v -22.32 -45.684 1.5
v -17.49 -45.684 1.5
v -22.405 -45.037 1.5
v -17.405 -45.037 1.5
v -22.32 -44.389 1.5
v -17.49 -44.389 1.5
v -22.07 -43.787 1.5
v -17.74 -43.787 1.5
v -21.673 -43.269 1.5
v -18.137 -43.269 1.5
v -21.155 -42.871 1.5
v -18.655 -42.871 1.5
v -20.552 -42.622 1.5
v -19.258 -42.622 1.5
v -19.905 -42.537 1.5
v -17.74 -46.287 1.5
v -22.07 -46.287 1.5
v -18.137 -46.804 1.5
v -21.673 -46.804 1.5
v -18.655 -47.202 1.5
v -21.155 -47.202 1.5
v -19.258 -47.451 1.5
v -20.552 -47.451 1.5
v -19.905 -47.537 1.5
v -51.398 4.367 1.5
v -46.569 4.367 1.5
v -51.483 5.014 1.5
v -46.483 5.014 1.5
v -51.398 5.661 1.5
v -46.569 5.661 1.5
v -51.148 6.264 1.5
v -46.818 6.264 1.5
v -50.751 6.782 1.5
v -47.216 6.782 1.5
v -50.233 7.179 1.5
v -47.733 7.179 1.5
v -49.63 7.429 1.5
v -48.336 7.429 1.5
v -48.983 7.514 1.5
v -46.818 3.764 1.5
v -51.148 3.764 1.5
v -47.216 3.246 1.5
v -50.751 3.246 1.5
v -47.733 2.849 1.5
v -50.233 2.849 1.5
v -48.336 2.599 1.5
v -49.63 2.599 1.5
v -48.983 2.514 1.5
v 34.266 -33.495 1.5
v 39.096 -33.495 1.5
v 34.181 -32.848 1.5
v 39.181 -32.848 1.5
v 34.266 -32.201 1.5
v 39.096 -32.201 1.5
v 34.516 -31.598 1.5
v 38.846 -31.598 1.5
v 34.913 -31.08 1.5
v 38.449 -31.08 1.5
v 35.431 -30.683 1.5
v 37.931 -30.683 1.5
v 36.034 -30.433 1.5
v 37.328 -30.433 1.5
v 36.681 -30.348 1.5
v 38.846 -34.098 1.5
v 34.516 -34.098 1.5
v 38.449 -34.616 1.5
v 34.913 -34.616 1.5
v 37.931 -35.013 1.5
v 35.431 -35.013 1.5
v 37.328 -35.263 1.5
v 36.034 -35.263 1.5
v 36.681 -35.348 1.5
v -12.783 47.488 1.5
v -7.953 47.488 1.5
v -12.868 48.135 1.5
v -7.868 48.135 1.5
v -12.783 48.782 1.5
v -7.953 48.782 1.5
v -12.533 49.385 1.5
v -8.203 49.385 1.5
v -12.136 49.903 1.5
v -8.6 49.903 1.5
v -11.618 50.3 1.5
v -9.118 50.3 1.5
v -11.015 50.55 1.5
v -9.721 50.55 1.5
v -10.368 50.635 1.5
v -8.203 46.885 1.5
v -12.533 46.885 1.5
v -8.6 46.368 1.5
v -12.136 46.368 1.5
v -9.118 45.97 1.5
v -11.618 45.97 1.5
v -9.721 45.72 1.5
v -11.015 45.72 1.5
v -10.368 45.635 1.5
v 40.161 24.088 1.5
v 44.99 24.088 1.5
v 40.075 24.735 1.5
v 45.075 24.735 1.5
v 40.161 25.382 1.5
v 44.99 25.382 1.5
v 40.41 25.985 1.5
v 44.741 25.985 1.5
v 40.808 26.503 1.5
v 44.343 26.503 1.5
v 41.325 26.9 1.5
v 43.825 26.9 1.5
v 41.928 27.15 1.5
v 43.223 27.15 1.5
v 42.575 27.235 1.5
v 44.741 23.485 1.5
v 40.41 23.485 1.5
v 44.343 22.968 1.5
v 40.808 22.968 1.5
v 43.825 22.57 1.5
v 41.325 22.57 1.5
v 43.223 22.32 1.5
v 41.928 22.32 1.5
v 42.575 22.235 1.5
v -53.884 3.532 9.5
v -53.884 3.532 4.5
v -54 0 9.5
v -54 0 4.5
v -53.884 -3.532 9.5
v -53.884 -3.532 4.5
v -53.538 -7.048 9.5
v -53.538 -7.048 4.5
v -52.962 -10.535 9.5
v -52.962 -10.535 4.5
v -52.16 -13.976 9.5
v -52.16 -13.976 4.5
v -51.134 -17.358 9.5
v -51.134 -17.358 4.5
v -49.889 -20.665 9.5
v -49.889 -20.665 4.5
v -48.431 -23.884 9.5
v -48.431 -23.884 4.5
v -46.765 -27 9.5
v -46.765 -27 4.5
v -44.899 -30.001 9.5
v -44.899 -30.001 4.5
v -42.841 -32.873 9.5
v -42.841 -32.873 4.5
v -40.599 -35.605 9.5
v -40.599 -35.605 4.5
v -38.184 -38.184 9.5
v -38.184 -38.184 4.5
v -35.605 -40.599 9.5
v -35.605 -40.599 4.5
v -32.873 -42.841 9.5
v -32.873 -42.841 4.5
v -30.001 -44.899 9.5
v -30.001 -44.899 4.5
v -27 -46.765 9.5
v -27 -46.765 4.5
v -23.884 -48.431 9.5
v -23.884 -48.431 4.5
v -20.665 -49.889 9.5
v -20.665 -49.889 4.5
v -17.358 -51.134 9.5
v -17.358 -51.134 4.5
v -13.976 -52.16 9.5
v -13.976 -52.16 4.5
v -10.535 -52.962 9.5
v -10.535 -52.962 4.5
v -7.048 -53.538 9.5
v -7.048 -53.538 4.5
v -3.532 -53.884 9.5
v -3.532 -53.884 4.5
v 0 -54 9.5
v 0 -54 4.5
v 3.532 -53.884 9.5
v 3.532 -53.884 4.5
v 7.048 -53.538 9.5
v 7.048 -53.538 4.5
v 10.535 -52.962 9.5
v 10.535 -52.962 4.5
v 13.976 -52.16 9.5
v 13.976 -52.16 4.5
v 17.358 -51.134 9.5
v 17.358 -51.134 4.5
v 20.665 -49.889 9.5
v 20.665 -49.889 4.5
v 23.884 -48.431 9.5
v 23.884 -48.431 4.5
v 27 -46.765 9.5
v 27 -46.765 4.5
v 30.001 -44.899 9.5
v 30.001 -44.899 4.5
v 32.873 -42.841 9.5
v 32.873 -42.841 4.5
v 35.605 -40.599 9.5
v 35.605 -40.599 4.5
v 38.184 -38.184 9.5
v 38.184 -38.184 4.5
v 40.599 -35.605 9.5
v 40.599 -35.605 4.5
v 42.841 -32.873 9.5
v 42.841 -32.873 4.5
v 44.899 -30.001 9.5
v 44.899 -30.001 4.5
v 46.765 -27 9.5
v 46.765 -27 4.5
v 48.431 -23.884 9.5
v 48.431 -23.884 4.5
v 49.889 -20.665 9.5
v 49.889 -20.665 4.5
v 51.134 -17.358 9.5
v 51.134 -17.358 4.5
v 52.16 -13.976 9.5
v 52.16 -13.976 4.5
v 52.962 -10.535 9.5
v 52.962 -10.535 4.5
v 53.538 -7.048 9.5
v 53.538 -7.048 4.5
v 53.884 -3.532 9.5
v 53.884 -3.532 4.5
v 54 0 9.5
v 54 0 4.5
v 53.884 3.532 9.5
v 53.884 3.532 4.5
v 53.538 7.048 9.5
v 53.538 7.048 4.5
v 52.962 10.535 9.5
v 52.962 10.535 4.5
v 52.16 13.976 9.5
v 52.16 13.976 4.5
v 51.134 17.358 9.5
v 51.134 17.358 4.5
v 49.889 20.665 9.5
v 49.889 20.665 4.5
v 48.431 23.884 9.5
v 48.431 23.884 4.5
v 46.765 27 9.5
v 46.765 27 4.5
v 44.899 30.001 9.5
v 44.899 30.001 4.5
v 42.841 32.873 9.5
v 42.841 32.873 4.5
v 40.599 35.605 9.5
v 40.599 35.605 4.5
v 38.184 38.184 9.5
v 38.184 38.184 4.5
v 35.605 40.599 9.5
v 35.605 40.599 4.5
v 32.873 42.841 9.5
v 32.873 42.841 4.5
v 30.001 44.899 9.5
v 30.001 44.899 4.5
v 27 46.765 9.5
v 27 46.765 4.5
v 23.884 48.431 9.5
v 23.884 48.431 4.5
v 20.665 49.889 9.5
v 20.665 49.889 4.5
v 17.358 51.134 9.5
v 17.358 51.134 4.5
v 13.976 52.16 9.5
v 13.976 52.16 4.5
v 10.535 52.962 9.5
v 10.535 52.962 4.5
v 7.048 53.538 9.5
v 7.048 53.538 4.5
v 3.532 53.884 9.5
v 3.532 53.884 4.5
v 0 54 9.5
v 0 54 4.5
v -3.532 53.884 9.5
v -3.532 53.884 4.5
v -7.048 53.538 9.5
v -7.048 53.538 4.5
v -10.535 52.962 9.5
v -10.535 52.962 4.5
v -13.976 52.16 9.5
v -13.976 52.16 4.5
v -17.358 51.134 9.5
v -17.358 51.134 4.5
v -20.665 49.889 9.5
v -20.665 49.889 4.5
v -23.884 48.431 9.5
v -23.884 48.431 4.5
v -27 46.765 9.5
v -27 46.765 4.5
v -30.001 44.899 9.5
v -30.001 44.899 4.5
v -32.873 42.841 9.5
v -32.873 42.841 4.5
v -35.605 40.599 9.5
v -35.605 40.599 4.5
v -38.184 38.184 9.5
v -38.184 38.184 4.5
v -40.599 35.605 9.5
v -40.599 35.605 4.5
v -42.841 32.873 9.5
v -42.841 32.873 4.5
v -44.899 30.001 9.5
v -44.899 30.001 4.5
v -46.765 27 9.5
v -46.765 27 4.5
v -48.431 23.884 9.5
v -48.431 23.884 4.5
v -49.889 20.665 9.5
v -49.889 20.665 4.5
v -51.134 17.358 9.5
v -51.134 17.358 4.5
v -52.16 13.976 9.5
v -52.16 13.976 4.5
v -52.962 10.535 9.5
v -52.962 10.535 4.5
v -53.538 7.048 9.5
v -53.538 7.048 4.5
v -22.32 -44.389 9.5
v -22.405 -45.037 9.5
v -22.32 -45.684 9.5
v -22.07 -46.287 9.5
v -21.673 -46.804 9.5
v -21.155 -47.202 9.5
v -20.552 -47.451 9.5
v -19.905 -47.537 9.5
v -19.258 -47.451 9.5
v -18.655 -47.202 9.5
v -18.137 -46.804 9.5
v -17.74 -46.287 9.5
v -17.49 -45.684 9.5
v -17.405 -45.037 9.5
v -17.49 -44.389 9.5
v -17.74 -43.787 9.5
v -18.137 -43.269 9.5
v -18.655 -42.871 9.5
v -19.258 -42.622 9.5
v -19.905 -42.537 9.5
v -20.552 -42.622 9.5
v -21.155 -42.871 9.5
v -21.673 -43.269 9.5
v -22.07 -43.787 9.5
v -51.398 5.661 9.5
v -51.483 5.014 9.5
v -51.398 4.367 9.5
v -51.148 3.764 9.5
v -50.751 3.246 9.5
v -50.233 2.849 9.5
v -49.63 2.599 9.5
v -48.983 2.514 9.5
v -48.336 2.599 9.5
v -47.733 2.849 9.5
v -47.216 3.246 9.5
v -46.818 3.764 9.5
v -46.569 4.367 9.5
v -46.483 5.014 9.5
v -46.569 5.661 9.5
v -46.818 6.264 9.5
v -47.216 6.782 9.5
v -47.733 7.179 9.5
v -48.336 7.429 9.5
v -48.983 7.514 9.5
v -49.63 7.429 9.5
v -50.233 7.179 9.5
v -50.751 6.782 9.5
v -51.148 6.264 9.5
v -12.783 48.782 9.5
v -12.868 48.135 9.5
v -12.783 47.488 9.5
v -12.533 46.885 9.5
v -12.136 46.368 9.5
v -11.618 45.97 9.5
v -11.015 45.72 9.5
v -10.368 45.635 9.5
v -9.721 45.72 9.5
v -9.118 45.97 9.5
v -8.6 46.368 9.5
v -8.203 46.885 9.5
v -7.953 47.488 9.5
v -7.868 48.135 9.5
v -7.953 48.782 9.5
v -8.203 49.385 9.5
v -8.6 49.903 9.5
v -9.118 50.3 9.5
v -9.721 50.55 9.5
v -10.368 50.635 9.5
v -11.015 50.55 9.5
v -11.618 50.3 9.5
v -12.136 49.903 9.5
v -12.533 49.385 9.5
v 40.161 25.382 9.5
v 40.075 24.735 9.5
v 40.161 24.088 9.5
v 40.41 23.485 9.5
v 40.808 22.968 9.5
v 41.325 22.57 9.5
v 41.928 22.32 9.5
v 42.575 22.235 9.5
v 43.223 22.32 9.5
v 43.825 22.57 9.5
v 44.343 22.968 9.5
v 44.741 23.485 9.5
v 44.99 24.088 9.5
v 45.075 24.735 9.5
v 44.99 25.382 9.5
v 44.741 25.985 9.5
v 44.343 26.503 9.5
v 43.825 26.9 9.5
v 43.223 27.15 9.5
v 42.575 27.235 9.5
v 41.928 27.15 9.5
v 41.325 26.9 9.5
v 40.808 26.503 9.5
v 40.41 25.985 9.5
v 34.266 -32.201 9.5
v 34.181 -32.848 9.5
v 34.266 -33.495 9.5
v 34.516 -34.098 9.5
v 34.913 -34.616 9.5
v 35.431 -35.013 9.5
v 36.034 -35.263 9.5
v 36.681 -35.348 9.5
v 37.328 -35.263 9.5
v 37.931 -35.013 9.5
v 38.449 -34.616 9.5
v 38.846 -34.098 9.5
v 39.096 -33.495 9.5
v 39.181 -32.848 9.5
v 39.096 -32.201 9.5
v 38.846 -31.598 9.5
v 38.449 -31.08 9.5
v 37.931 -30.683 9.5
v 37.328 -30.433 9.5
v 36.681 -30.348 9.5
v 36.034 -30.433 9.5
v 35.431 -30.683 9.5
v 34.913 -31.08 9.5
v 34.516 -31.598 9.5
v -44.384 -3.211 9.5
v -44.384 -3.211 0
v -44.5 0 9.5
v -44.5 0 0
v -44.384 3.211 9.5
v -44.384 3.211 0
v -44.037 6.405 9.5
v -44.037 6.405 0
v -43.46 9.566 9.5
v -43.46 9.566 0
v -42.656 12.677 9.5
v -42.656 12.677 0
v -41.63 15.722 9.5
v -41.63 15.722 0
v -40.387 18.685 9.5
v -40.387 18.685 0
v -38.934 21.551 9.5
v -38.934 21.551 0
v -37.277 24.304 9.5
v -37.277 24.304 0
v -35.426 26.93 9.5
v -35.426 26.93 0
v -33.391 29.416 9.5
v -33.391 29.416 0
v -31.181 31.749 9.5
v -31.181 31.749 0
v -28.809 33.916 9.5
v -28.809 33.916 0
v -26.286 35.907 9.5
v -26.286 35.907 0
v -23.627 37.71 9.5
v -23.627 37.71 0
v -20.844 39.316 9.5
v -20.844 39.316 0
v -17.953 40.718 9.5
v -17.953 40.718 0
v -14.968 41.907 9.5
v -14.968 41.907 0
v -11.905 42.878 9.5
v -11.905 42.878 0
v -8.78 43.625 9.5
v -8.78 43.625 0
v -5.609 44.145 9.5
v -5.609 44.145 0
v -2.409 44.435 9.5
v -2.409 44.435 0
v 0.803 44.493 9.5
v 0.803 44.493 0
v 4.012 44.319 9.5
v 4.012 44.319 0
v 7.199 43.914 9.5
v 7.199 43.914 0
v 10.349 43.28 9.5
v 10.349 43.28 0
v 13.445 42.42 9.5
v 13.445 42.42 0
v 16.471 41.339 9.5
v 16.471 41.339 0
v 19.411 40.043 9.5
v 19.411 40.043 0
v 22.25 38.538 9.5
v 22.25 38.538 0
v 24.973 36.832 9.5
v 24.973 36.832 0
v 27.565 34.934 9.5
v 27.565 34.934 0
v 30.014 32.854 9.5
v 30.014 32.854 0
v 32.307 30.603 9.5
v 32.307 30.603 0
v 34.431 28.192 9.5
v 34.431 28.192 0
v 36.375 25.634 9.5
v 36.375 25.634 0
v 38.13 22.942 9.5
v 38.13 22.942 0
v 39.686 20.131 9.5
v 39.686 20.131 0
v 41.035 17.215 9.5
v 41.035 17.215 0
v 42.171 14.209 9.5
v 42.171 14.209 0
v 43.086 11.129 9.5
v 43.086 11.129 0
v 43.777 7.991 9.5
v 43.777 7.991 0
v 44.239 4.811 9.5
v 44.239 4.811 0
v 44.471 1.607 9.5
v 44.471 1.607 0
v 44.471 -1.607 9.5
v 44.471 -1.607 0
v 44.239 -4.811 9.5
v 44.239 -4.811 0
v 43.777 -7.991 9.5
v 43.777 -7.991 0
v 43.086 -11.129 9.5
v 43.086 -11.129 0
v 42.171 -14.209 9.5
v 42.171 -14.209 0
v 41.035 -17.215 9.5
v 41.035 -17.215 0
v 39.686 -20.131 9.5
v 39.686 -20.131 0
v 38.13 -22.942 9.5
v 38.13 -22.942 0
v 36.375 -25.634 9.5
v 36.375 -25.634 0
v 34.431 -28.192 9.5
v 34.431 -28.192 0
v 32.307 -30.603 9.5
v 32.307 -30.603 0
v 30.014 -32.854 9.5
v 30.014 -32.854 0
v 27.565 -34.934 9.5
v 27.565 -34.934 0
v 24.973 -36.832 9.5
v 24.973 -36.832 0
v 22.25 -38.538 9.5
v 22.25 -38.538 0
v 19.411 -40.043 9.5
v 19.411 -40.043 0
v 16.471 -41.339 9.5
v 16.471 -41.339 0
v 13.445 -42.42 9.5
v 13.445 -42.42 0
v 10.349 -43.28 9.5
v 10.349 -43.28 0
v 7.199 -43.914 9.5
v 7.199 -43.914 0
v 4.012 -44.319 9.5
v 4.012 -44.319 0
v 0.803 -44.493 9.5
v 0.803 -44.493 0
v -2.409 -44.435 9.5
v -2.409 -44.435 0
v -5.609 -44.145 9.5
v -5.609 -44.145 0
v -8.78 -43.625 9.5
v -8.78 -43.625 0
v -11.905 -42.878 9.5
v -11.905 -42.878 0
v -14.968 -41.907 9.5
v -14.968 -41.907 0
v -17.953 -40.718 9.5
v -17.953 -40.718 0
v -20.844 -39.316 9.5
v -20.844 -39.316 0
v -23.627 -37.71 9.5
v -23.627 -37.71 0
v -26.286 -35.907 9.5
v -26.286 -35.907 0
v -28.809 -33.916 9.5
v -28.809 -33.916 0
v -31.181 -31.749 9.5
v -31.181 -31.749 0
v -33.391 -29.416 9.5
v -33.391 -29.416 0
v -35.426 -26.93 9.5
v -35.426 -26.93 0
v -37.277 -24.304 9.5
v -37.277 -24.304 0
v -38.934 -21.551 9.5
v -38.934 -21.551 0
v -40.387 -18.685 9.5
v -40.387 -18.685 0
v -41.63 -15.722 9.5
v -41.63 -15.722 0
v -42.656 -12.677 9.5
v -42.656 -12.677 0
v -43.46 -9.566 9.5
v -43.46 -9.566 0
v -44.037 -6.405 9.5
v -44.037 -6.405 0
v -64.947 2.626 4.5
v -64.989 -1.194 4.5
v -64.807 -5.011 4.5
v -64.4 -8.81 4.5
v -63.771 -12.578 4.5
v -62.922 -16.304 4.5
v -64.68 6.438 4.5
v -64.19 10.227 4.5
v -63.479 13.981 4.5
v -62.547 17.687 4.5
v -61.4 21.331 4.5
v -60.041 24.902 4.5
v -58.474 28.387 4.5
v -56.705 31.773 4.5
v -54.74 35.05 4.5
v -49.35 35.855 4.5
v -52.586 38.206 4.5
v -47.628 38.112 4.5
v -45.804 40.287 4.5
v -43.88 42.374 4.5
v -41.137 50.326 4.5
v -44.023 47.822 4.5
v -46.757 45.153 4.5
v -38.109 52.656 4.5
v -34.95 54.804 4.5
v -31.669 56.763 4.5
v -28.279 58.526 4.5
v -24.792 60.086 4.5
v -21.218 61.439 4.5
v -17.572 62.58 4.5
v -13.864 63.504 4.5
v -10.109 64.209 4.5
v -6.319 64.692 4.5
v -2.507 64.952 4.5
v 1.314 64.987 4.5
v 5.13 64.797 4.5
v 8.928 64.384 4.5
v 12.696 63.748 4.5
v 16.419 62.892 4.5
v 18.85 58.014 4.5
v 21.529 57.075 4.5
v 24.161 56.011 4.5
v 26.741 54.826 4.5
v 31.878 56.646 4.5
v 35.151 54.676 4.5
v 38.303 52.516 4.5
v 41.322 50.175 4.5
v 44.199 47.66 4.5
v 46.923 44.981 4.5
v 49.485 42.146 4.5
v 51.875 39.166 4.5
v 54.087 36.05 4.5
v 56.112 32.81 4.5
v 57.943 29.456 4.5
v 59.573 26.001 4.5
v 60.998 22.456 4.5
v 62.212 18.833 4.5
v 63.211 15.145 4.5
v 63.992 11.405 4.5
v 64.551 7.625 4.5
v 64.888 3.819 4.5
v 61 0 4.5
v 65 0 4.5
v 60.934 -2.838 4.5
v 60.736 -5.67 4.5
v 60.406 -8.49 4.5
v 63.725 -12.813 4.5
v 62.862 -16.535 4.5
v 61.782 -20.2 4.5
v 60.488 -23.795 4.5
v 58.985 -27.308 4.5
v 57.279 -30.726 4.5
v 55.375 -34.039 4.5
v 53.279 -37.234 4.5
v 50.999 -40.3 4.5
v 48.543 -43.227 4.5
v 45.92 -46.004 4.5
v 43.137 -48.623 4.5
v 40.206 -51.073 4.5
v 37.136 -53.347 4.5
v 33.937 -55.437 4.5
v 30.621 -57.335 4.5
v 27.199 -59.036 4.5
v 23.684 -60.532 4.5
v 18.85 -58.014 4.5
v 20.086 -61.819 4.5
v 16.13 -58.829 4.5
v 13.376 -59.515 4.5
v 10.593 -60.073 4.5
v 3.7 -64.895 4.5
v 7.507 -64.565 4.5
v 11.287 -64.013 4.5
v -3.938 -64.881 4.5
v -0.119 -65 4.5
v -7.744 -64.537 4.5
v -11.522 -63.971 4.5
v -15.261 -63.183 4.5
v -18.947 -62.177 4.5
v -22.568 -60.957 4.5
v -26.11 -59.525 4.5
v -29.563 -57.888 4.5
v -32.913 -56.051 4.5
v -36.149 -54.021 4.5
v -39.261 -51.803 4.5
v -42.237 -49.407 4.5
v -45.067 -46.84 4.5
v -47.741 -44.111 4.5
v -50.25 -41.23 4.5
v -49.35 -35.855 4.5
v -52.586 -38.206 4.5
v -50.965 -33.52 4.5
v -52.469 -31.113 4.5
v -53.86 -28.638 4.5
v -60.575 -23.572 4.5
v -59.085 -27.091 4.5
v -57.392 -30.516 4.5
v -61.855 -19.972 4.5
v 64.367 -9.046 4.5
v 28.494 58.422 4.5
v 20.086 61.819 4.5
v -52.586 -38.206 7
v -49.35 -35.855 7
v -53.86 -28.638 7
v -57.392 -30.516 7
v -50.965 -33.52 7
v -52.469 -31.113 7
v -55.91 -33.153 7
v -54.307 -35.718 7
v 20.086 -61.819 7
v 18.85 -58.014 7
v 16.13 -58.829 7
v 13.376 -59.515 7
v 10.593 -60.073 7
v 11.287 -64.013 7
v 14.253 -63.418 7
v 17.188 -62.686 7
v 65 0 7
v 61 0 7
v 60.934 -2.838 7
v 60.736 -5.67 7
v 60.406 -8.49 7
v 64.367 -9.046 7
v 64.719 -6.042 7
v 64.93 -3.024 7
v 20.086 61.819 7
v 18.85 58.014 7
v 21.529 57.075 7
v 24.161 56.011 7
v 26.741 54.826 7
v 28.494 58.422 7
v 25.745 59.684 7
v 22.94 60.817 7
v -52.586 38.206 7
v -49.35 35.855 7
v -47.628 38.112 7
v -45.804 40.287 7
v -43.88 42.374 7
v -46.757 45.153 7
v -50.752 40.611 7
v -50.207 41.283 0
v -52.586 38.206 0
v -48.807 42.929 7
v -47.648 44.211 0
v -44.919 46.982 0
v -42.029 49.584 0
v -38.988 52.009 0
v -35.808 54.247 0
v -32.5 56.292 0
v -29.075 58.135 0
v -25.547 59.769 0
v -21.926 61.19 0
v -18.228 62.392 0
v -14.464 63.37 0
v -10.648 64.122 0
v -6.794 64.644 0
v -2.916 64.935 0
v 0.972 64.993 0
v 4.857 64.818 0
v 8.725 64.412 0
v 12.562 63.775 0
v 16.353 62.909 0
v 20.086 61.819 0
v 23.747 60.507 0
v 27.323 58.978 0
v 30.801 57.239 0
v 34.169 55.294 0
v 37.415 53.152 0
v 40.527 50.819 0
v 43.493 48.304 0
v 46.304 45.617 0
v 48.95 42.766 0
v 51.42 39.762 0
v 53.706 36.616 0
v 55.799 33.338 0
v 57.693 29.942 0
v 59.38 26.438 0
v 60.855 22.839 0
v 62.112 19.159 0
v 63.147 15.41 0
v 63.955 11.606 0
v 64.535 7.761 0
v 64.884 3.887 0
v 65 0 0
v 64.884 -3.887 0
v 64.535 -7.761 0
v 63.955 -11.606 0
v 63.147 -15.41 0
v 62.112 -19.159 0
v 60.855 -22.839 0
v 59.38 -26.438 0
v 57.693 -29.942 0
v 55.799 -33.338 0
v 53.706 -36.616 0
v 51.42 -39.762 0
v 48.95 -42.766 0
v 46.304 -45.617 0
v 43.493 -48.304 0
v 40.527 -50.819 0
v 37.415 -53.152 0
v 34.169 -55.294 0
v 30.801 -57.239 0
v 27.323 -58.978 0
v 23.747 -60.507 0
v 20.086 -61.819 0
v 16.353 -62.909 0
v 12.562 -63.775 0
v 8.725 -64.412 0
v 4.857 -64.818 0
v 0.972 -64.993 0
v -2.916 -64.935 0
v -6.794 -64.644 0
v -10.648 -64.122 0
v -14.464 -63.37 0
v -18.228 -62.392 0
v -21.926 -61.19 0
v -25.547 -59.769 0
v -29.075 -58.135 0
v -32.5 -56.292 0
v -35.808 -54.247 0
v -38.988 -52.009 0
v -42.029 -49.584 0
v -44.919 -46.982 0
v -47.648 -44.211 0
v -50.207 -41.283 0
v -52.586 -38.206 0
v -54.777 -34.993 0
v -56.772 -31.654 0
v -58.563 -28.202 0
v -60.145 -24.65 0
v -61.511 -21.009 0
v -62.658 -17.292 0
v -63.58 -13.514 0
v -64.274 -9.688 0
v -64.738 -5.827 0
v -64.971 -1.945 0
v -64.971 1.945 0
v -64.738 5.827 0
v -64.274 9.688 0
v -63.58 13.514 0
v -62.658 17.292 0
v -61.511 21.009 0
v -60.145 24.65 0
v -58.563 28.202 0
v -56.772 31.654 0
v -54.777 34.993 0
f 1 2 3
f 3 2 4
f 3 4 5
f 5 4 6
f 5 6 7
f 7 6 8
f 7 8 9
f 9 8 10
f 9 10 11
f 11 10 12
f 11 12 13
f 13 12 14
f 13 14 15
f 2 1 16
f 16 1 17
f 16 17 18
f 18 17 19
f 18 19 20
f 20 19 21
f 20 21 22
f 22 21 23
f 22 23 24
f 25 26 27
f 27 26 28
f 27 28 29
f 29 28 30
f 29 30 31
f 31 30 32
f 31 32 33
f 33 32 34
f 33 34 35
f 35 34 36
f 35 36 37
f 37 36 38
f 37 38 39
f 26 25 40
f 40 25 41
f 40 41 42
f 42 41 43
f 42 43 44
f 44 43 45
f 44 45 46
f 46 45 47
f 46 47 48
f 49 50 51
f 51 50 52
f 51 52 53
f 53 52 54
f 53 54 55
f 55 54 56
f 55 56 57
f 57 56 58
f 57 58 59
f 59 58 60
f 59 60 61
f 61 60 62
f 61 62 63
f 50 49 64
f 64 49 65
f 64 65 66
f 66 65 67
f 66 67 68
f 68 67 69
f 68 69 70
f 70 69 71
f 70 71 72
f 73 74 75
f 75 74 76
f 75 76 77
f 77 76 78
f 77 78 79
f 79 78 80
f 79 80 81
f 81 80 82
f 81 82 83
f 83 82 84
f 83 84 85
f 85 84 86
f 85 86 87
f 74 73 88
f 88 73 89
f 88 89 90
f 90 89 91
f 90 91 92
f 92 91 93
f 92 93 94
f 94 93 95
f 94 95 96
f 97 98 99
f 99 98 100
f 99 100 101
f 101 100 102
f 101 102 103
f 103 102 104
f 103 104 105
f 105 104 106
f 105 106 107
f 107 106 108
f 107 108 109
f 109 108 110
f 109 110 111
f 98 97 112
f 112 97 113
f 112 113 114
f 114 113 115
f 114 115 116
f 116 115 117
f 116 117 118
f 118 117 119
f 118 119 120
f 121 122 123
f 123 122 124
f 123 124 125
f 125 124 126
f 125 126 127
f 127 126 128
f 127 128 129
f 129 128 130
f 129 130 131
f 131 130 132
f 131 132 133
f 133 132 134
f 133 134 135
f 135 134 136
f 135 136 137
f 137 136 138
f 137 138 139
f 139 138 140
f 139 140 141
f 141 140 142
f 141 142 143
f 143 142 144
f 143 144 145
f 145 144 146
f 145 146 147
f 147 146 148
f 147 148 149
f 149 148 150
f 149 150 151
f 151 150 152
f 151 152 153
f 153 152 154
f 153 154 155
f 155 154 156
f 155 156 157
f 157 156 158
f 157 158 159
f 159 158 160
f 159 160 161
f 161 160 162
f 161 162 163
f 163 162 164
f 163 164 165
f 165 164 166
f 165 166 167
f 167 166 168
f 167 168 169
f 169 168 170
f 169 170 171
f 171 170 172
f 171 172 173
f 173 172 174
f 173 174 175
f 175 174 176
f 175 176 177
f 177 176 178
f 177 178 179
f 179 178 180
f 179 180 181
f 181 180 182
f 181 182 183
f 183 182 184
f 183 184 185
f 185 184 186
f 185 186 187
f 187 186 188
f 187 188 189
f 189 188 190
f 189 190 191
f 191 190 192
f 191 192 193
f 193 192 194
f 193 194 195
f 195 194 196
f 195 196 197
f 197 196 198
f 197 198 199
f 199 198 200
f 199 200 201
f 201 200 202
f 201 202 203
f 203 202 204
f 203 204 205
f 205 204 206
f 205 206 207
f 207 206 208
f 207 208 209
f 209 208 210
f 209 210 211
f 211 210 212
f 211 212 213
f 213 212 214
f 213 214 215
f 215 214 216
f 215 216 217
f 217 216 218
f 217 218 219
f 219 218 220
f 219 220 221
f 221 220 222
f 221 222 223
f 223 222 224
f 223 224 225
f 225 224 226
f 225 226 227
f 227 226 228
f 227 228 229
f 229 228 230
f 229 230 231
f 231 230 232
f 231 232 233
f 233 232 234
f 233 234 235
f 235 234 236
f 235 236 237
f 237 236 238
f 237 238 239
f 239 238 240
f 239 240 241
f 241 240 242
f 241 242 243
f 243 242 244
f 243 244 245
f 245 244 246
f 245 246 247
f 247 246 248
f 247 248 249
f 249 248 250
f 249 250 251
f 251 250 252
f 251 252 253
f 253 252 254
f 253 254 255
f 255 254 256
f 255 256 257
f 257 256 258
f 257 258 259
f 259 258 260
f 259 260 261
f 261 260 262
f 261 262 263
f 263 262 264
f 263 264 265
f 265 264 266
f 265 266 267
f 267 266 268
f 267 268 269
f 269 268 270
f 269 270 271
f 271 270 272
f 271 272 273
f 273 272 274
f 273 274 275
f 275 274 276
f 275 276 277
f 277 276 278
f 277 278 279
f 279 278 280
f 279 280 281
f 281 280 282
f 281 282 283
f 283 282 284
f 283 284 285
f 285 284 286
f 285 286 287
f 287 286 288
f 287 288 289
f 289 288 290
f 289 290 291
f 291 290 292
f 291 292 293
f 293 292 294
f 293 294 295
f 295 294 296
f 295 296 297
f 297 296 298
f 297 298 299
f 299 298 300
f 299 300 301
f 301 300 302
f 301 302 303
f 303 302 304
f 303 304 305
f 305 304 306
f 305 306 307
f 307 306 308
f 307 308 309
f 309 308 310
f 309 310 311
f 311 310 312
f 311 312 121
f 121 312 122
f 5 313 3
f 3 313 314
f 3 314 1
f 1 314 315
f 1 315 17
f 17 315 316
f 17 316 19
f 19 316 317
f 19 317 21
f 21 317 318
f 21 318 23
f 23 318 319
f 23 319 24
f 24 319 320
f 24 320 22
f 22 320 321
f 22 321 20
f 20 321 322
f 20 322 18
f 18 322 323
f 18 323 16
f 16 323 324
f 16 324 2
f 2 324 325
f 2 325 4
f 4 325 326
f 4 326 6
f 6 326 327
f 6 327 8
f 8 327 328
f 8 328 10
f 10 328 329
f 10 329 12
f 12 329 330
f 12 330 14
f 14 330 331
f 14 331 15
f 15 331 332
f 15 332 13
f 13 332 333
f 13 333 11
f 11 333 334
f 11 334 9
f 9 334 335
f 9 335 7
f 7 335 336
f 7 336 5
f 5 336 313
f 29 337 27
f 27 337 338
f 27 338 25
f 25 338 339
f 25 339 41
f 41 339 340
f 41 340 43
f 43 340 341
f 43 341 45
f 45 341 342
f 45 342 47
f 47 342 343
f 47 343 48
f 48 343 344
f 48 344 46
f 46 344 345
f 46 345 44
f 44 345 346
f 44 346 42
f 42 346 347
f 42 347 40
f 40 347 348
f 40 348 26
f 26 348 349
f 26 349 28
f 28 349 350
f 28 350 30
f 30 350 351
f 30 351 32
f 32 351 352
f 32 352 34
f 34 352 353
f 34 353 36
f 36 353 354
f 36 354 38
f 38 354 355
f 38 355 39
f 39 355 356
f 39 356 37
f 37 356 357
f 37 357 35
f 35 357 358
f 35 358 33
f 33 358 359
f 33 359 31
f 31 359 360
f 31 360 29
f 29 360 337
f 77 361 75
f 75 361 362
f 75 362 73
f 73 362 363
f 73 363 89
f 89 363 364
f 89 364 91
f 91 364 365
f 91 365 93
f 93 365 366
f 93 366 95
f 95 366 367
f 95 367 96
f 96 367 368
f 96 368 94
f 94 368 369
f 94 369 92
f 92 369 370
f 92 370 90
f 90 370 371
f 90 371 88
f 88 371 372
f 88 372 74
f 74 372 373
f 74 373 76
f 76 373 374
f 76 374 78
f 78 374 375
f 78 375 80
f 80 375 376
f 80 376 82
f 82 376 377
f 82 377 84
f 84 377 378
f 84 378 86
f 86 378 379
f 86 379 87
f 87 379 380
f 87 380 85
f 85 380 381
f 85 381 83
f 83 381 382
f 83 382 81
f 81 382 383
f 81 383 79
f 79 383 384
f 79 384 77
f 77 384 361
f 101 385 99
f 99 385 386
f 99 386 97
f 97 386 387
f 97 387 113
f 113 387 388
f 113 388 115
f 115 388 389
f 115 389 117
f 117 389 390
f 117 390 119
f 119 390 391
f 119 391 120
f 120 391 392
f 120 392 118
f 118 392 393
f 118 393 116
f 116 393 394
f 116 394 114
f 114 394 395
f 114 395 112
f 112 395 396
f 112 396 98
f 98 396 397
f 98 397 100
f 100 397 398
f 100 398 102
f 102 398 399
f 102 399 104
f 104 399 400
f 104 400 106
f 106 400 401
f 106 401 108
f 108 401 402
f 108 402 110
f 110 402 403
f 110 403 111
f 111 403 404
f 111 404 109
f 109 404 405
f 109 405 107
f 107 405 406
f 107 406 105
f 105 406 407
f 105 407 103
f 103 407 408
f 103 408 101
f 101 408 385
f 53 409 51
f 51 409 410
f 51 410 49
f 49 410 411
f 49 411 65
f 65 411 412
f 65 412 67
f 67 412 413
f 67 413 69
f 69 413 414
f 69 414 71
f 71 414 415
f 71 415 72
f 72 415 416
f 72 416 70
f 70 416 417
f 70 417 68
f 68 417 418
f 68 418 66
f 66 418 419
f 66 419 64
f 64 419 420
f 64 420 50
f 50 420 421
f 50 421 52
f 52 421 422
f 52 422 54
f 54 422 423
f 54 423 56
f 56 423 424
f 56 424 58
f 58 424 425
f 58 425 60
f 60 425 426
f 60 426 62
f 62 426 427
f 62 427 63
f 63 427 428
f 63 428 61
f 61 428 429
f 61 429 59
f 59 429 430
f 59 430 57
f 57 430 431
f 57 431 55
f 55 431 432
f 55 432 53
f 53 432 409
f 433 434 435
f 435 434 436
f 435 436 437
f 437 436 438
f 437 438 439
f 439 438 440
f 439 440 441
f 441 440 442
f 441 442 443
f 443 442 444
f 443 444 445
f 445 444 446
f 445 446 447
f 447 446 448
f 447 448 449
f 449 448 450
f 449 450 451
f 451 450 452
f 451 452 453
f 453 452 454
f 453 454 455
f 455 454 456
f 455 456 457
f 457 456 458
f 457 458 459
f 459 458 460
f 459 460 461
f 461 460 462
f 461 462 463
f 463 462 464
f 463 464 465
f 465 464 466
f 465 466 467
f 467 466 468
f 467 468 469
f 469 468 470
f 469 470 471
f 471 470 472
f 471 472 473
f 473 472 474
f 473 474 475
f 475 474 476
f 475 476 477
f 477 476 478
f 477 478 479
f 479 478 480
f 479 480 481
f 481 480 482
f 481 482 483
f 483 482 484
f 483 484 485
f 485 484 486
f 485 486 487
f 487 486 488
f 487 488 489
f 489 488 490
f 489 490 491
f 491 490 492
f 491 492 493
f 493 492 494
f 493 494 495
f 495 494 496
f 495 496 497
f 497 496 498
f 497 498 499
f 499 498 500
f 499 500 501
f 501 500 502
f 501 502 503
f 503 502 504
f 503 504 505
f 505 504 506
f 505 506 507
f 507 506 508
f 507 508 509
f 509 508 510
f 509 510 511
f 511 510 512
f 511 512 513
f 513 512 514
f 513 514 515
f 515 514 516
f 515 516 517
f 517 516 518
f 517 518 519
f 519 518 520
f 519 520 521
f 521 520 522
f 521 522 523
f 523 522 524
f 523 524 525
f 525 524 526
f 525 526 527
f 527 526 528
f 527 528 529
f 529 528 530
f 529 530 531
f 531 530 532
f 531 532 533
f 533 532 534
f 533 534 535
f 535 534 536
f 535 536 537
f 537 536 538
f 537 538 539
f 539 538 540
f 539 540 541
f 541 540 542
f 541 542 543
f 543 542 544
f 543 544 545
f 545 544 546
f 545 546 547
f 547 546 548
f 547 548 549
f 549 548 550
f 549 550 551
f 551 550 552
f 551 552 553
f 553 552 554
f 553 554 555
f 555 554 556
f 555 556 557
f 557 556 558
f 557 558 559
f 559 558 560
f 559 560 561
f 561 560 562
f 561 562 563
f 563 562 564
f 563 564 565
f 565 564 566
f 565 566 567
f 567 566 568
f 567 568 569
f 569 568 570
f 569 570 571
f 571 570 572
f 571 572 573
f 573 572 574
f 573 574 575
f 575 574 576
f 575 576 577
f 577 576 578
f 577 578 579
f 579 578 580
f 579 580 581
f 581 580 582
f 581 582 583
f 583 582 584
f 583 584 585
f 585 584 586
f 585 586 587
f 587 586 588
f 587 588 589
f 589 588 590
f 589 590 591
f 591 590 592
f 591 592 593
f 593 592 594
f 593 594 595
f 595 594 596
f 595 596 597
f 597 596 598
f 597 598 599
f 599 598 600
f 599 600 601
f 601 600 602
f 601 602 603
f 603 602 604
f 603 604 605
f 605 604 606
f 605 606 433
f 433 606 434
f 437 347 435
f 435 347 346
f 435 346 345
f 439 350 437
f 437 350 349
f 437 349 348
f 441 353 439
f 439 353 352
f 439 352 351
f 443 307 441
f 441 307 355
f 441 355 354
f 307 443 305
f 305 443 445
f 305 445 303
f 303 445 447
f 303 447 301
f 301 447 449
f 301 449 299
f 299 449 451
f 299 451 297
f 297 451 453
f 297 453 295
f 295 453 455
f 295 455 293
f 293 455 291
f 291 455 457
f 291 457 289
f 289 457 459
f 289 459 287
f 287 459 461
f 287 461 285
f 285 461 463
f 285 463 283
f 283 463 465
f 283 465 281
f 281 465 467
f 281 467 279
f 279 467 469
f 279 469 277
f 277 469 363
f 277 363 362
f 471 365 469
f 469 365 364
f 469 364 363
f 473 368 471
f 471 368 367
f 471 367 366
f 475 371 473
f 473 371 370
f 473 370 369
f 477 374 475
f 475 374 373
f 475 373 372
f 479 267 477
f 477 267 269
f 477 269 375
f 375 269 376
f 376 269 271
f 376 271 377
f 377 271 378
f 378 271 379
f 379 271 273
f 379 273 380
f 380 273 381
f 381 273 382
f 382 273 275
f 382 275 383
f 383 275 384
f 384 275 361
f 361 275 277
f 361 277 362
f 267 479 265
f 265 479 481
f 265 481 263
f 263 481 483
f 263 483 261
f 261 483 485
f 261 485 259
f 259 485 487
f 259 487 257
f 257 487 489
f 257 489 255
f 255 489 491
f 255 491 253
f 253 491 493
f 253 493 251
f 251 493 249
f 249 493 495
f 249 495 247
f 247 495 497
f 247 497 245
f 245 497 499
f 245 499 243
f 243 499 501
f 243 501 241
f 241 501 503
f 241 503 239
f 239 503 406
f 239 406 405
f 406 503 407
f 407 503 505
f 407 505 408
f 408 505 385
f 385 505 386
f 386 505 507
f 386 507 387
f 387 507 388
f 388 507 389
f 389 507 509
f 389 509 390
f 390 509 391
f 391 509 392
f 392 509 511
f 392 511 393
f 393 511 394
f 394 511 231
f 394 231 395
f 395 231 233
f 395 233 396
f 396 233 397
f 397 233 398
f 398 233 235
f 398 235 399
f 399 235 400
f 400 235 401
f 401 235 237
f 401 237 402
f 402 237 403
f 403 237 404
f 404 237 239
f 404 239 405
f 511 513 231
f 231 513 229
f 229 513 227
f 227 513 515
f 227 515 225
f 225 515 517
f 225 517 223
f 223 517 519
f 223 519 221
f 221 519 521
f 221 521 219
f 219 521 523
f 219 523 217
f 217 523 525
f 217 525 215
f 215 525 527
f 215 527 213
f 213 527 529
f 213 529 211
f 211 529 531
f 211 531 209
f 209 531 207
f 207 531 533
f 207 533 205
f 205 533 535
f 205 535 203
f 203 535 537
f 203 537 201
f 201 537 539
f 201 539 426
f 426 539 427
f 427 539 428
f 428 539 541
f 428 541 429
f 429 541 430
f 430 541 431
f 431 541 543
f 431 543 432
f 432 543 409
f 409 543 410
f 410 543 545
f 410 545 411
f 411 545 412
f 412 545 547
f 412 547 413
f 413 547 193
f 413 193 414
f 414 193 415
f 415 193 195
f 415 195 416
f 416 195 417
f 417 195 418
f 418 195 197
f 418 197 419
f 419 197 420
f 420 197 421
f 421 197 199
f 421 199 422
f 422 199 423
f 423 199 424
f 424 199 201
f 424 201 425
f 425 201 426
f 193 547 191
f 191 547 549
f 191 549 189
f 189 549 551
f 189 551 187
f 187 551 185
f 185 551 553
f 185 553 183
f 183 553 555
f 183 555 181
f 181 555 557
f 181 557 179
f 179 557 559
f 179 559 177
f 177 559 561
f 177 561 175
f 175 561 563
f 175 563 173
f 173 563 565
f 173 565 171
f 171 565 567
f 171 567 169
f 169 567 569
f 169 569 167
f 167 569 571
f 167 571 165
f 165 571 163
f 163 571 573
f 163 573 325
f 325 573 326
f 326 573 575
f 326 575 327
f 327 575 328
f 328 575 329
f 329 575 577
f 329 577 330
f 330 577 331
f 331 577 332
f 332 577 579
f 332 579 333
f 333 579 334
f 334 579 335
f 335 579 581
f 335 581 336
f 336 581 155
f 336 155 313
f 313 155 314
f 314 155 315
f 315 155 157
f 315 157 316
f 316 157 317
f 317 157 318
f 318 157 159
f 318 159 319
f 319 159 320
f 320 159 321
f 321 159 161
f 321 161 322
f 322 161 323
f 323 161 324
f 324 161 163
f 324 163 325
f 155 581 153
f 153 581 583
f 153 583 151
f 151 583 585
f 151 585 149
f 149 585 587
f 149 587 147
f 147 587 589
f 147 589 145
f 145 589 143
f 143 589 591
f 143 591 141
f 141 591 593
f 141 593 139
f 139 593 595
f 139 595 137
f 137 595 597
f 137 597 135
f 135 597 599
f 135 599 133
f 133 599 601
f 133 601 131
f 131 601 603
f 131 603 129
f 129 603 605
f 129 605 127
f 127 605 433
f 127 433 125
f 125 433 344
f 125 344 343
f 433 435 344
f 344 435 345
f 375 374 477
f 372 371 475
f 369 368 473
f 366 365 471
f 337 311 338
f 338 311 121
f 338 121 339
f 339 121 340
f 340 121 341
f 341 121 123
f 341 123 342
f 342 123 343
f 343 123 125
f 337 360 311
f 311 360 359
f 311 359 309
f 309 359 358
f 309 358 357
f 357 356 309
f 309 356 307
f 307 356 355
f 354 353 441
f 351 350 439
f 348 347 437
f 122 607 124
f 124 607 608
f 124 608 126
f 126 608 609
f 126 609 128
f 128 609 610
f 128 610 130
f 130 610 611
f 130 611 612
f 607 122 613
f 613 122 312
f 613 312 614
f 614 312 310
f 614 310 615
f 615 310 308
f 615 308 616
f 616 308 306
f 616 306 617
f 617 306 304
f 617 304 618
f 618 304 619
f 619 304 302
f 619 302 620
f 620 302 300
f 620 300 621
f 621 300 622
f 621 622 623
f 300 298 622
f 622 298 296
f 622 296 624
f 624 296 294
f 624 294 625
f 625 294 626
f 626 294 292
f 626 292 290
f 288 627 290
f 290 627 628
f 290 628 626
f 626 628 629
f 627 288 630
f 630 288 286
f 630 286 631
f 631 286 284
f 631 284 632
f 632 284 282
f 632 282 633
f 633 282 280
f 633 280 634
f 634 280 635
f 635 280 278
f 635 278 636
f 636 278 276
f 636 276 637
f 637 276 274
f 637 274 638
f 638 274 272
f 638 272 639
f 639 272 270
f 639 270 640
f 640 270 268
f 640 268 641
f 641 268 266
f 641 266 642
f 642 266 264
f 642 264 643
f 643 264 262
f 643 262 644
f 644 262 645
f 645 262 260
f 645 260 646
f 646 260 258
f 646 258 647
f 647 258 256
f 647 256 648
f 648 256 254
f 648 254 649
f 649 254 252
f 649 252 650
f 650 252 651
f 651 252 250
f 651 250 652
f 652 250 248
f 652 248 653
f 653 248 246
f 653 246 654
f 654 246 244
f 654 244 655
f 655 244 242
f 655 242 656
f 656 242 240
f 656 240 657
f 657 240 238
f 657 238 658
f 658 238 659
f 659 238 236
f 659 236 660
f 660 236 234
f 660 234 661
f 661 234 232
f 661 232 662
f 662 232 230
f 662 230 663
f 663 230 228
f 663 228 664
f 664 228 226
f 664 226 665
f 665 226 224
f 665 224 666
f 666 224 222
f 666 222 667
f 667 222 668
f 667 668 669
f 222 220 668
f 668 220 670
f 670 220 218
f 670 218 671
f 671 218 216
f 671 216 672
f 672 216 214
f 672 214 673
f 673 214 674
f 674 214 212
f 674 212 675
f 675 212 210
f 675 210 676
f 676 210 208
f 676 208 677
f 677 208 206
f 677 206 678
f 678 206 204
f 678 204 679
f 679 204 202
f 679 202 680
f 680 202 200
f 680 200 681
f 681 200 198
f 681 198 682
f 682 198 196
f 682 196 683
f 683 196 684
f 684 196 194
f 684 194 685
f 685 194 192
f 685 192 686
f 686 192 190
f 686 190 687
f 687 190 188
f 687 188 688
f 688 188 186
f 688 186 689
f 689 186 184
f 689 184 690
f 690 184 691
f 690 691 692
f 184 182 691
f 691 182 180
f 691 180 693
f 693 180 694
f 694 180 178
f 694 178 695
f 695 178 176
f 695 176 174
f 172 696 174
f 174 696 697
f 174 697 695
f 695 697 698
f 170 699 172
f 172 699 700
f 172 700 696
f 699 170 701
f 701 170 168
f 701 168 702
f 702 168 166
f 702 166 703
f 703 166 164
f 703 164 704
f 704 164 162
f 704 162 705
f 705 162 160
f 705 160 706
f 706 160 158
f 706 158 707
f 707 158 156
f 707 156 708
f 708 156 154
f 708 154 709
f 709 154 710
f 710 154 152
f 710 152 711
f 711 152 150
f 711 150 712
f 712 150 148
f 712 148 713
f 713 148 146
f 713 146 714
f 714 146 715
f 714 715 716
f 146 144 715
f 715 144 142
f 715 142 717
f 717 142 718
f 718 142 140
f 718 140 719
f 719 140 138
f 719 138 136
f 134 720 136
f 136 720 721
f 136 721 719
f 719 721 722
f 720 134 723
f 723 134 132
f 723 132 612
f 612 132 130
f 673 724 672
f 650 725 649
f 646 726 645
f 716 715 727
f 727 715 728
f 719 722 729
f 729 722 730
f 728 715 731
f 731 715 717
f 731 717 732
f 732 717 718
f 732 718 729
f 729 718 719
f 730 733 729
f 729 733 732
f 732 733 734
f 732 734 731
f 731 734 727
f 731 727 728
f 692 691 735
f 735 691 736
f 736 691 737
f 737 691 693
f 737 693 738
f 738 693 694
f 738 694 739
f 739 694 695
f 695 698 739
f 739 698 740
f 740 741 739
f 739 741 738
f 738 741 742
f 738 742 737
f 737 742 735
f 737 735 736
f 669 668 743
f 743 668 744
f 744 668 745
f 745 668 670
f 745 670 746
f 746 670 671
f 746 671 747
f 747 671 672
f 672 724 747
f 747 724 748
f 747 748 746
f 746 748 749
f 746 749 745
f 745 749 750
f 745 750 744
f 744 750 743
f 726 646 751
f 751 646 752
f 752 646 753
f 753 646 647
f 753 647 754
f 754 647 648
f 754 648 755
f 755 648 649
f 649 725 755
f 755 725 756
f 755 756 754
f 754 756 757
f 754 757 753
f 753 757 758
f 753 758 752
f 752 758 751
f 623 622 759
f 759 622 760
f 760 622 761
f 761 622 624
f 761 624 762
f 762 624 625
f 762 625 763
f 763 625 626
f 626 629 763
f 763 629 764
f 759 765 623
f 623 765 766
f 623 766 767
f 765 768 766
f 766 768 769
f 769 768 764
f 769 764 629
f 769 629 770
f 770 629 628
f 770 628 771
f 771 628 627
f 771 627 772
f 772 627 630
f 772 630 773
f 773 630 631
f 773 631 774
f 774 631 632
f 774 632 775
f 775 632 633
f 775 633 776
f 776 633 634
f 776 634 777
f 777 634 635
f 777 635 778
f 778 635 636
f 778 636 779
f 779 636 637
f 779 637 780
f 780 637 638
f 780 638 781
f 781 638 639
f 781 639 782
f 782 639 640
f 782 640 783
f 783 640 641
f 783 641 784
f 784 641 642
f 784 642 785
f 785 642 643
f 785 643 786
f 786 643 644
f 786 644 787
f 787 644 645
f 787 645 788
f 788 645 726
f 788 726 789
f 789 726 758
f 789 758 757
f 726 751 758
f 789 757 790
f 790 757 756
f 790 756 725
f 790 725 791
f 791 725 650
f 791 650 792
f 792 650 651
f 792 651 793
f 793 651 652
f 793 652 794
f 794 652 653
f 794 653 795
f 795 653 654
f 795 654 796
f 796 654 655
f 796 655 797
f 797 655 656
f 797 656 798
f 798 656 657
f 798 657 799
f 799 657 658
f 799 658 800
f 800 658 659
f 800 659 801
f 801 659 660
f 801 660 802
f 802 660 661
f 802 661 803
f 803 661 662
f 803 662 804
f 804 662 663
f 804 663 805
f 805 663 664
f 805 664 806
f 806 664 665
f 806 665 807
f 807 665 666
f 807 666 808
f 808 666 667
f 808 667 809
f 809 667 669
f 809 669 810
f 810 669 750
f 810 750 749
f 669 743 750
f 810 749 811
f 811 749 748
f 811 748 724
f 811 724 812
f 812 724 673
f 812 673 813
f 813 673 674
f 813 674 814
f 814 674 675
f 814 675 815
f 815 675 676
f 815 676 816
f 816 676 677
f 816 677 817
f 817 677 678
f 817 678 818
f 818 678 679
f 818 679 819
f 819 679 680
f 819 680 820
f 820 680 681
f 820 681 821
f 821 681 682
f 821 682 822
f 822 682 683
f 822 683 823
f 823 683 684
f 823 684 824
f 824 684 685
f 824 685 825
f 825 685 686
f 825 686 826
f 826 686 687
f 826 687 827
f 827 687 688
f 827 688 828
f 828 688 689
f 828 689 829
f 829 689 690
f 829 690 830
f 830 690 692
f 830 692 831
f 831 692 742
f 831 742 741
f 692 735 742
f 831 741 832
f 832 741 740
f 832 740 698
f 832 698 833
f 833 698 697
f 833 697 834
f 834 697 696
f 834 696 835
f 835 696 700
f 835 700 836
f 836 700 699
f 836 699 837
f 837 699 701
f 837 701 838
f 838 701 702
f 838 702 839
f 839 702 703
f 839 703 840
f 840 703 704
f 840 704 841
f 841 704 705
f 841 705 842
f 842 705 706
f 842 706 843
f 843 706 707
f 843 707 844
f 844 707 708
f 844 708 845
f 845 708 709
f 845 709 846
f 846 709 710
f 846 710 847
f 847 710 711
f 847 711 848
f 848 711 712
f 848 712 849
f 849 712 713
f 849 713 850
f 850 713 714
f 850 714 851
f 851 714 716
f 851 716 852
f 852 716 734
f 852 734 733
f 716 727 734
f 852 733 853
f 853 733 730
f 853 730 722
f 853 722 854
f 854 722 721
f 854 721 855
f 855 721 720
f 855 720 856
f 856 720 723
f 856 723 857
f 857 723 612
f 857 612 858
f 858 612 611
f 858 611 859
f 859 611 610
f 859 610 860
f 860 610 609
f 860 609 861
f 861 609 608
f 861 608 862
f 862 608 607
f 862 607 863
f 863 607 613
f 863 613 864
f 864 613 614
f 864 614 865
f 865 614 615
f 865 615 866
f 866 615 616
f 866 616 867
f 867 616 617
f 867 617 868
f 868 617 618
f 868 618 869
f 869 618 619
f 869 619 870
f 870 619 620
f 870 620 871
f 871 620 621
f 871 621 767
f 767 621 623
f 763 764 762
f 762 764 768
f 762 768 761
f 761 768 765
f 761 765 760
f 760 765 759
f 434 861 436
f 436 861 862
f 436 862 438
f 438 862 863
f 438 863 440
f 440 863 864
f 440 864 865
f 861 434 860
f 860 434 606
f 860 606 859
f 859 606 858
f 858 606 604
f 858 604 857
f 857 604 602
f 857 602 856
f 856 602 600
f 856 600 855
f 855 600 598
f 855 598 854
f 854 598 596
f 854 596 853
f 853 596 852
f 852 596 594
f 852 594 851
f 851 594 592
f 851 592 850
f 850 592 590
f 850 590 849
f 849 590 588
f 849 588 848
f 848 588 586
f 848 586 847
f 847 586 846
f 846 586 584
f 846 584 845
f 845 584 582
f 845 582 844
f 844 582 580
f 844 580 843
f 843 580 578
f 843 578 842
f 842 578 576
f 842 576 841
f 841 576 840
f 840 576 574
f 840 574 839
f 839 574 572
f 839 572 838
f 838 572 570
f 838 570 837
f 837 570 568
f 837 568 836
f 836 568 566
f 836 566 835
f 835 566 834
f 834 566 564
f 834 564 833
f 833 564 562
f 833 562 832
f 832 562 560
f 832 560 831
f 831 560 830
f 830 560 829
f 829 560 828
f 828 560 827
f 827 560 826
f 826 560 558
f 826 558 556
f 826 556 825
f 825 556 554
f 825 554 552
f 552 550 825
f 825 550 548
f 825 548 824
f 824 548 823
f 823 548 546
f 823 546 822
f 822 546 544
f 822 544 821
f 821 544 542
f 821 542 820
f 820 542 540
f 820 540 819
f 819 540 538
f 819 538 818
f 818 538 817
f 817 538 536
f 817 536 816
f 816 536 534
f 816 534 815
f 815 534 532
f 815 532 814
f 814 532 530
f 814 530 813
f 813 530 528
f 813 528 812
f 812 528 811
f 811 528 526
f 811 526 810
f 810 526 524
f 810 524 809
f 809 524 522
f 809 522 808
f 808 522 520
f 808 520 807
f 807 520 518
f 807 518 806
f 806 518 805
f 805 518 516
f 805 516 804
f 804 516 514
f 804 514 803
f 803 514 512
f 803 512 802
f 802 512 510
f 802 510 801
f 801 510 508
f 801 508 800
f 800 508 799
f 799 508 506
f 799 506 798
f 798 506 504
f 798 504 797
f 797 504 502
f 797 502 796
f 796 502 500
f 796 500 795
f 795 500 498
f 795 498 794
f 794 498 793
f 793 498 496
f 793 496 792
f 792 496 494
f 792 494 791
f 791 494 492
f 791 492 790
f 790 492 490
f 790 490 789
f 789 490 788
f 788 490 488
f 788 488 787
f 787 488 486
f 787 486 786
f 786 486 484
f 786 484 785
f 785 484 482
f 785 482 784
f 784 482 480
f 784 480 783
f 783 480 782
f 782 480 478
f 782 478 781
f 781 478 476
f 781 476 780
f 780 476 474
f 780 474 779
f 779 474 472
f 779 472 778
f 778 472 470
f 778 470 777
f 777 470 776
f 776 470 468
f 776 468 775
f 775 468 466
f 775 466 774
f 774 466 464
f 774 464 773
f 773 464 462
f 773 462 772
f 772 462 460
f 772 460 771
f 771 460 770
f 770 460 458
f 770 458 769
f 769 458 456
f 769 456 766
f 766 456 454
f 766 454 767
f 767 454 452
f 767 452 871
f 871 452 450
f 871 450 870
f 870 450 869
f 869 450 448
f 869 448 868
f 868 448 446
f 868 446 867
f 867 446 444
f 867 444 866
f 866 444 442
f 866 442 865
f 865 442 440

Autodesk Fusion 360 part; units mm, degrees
sketch "Sketch1" plane through (0, 0, 0) normal (0, 0, 1) x (1, 0, 0)
  circle A0 centre (0, 0) radius 65
  circle A1 centre (0, 0) radius 44.5
  circle A2 centre (0, 0) radius 54
  line L0 (44.5, 30.59) -> (44.5, 0) construction
  line L1 (-10.3681, 43.2753) -> (-10.3681, 52.9953) construction
  circle A3 centre (-10.3681, 48.1353) radius 2.5
  circle A4 centre (-48.9833, 5.014) radius 2.5
  circle A5 centre (-19.9052, -45.0365) radius 2.5
  circle A6 centre (36.6812, -32.8481) radius 2.5
  circle A7 centre (42.5755, 24.7353) radius 2.5
  line L2 (0, 0) -> (65, 0) construction
  line L3 (0, 0) -> (65, 0) construction
  line L4 (18.85, 58.0144) -> (20.0861, 61.8187)
  line L5 (26.7406, 54.8264) -> (28.4941, 58.4216)
  line L6 (-49.35, 35.8549) -> (-52.5861, 38.206)
  line L7 (-43.8797, 42.3742) -> (-46.7571, 45.1528)
  line L8 (-49.35, -35.8549) -> (-52.5861, -38.206)
  line L9 (-53.8598, -28.6378) -> (-57.3916, -30.5157)
  line L10 (18.85, -58.0144) -> (20.0861, -61.8187)
  line L11 (10.5925, -60.0733) -> (11.2871, -64.0125)
  line L12 (61, 0) -> (65, 0)
  line L13 (60.4064, -8.4896) -> (64.3674, -9.0463)
  arc A8 (26.7406, 54.8264) -> (18.85, 58.0144) centre (0, 0) ccw
  arc A9 (60.4064, -8.4896) -> (61, 0) centre (0, 0) ccw
  arc A10 (-43.8797, 42.3742) -> (-49.35, 35.8549) centre (0, 0) ccw
  arc A11 (-53.8598, -28.6378) -> (-49.35, -35.8549) centre (0, 0) ccw
  arc A12 (10.5925, -60.0733) -> (18.85, -58.0144) centre (0, 0) ccw
  line L14 (0, 0) -> (42.5755, 24.7353) construction
  line L15 (0, 0) -> (0, -65) construction
  dimension "d1" = 130
  dimension "d2" = 89
  dimension "d3" = 108
  dimension "d4" = 5
  dimension "d6" = 360
  dimension "d11" = 360
  dimension "d22" = 30.156
  dimension "d23" = 61
  dimension "d24" = 10
  dimension "d26" = 18
extrude "Extrude1" add sketch "Sketch1" along normal blind 7 contours A0 L12 L13 A9 | A0 L4 L5 A8 | A0 L10 L11 A12 | A0 L6 L7 A10 | A0 L8 L9 A11 makes body 1 at (64.8749, -4.0311, 4.6667) makes body 2 at (21.9942, 61.1658, 4.6667) makes body 3 at (16.2137, -62.9453, 4.6667) makes body 4 at (-51.9871, 39.0172, 4.6667) makes body 5 at (-53.1725, -37.3857, 4.6667)
extrude "Extrude2" add sketch "Sketch1" along normal blind 4.5 contours A0 L4 L5 L6 L7 L8 L9 L10 L11 L12 L13 A8 A9 A10 A11 A12 bodies 1 2 3 4 5
extrude "Extrude3" add sketch "Sketch1" along normal blind 9.5 contours A2 bodies 1
extrude "Extrude4" add sketch "Sketch1" along normal blind 1.5 contours A3 | A4 | A5 | A6 | A7 bodies 1
